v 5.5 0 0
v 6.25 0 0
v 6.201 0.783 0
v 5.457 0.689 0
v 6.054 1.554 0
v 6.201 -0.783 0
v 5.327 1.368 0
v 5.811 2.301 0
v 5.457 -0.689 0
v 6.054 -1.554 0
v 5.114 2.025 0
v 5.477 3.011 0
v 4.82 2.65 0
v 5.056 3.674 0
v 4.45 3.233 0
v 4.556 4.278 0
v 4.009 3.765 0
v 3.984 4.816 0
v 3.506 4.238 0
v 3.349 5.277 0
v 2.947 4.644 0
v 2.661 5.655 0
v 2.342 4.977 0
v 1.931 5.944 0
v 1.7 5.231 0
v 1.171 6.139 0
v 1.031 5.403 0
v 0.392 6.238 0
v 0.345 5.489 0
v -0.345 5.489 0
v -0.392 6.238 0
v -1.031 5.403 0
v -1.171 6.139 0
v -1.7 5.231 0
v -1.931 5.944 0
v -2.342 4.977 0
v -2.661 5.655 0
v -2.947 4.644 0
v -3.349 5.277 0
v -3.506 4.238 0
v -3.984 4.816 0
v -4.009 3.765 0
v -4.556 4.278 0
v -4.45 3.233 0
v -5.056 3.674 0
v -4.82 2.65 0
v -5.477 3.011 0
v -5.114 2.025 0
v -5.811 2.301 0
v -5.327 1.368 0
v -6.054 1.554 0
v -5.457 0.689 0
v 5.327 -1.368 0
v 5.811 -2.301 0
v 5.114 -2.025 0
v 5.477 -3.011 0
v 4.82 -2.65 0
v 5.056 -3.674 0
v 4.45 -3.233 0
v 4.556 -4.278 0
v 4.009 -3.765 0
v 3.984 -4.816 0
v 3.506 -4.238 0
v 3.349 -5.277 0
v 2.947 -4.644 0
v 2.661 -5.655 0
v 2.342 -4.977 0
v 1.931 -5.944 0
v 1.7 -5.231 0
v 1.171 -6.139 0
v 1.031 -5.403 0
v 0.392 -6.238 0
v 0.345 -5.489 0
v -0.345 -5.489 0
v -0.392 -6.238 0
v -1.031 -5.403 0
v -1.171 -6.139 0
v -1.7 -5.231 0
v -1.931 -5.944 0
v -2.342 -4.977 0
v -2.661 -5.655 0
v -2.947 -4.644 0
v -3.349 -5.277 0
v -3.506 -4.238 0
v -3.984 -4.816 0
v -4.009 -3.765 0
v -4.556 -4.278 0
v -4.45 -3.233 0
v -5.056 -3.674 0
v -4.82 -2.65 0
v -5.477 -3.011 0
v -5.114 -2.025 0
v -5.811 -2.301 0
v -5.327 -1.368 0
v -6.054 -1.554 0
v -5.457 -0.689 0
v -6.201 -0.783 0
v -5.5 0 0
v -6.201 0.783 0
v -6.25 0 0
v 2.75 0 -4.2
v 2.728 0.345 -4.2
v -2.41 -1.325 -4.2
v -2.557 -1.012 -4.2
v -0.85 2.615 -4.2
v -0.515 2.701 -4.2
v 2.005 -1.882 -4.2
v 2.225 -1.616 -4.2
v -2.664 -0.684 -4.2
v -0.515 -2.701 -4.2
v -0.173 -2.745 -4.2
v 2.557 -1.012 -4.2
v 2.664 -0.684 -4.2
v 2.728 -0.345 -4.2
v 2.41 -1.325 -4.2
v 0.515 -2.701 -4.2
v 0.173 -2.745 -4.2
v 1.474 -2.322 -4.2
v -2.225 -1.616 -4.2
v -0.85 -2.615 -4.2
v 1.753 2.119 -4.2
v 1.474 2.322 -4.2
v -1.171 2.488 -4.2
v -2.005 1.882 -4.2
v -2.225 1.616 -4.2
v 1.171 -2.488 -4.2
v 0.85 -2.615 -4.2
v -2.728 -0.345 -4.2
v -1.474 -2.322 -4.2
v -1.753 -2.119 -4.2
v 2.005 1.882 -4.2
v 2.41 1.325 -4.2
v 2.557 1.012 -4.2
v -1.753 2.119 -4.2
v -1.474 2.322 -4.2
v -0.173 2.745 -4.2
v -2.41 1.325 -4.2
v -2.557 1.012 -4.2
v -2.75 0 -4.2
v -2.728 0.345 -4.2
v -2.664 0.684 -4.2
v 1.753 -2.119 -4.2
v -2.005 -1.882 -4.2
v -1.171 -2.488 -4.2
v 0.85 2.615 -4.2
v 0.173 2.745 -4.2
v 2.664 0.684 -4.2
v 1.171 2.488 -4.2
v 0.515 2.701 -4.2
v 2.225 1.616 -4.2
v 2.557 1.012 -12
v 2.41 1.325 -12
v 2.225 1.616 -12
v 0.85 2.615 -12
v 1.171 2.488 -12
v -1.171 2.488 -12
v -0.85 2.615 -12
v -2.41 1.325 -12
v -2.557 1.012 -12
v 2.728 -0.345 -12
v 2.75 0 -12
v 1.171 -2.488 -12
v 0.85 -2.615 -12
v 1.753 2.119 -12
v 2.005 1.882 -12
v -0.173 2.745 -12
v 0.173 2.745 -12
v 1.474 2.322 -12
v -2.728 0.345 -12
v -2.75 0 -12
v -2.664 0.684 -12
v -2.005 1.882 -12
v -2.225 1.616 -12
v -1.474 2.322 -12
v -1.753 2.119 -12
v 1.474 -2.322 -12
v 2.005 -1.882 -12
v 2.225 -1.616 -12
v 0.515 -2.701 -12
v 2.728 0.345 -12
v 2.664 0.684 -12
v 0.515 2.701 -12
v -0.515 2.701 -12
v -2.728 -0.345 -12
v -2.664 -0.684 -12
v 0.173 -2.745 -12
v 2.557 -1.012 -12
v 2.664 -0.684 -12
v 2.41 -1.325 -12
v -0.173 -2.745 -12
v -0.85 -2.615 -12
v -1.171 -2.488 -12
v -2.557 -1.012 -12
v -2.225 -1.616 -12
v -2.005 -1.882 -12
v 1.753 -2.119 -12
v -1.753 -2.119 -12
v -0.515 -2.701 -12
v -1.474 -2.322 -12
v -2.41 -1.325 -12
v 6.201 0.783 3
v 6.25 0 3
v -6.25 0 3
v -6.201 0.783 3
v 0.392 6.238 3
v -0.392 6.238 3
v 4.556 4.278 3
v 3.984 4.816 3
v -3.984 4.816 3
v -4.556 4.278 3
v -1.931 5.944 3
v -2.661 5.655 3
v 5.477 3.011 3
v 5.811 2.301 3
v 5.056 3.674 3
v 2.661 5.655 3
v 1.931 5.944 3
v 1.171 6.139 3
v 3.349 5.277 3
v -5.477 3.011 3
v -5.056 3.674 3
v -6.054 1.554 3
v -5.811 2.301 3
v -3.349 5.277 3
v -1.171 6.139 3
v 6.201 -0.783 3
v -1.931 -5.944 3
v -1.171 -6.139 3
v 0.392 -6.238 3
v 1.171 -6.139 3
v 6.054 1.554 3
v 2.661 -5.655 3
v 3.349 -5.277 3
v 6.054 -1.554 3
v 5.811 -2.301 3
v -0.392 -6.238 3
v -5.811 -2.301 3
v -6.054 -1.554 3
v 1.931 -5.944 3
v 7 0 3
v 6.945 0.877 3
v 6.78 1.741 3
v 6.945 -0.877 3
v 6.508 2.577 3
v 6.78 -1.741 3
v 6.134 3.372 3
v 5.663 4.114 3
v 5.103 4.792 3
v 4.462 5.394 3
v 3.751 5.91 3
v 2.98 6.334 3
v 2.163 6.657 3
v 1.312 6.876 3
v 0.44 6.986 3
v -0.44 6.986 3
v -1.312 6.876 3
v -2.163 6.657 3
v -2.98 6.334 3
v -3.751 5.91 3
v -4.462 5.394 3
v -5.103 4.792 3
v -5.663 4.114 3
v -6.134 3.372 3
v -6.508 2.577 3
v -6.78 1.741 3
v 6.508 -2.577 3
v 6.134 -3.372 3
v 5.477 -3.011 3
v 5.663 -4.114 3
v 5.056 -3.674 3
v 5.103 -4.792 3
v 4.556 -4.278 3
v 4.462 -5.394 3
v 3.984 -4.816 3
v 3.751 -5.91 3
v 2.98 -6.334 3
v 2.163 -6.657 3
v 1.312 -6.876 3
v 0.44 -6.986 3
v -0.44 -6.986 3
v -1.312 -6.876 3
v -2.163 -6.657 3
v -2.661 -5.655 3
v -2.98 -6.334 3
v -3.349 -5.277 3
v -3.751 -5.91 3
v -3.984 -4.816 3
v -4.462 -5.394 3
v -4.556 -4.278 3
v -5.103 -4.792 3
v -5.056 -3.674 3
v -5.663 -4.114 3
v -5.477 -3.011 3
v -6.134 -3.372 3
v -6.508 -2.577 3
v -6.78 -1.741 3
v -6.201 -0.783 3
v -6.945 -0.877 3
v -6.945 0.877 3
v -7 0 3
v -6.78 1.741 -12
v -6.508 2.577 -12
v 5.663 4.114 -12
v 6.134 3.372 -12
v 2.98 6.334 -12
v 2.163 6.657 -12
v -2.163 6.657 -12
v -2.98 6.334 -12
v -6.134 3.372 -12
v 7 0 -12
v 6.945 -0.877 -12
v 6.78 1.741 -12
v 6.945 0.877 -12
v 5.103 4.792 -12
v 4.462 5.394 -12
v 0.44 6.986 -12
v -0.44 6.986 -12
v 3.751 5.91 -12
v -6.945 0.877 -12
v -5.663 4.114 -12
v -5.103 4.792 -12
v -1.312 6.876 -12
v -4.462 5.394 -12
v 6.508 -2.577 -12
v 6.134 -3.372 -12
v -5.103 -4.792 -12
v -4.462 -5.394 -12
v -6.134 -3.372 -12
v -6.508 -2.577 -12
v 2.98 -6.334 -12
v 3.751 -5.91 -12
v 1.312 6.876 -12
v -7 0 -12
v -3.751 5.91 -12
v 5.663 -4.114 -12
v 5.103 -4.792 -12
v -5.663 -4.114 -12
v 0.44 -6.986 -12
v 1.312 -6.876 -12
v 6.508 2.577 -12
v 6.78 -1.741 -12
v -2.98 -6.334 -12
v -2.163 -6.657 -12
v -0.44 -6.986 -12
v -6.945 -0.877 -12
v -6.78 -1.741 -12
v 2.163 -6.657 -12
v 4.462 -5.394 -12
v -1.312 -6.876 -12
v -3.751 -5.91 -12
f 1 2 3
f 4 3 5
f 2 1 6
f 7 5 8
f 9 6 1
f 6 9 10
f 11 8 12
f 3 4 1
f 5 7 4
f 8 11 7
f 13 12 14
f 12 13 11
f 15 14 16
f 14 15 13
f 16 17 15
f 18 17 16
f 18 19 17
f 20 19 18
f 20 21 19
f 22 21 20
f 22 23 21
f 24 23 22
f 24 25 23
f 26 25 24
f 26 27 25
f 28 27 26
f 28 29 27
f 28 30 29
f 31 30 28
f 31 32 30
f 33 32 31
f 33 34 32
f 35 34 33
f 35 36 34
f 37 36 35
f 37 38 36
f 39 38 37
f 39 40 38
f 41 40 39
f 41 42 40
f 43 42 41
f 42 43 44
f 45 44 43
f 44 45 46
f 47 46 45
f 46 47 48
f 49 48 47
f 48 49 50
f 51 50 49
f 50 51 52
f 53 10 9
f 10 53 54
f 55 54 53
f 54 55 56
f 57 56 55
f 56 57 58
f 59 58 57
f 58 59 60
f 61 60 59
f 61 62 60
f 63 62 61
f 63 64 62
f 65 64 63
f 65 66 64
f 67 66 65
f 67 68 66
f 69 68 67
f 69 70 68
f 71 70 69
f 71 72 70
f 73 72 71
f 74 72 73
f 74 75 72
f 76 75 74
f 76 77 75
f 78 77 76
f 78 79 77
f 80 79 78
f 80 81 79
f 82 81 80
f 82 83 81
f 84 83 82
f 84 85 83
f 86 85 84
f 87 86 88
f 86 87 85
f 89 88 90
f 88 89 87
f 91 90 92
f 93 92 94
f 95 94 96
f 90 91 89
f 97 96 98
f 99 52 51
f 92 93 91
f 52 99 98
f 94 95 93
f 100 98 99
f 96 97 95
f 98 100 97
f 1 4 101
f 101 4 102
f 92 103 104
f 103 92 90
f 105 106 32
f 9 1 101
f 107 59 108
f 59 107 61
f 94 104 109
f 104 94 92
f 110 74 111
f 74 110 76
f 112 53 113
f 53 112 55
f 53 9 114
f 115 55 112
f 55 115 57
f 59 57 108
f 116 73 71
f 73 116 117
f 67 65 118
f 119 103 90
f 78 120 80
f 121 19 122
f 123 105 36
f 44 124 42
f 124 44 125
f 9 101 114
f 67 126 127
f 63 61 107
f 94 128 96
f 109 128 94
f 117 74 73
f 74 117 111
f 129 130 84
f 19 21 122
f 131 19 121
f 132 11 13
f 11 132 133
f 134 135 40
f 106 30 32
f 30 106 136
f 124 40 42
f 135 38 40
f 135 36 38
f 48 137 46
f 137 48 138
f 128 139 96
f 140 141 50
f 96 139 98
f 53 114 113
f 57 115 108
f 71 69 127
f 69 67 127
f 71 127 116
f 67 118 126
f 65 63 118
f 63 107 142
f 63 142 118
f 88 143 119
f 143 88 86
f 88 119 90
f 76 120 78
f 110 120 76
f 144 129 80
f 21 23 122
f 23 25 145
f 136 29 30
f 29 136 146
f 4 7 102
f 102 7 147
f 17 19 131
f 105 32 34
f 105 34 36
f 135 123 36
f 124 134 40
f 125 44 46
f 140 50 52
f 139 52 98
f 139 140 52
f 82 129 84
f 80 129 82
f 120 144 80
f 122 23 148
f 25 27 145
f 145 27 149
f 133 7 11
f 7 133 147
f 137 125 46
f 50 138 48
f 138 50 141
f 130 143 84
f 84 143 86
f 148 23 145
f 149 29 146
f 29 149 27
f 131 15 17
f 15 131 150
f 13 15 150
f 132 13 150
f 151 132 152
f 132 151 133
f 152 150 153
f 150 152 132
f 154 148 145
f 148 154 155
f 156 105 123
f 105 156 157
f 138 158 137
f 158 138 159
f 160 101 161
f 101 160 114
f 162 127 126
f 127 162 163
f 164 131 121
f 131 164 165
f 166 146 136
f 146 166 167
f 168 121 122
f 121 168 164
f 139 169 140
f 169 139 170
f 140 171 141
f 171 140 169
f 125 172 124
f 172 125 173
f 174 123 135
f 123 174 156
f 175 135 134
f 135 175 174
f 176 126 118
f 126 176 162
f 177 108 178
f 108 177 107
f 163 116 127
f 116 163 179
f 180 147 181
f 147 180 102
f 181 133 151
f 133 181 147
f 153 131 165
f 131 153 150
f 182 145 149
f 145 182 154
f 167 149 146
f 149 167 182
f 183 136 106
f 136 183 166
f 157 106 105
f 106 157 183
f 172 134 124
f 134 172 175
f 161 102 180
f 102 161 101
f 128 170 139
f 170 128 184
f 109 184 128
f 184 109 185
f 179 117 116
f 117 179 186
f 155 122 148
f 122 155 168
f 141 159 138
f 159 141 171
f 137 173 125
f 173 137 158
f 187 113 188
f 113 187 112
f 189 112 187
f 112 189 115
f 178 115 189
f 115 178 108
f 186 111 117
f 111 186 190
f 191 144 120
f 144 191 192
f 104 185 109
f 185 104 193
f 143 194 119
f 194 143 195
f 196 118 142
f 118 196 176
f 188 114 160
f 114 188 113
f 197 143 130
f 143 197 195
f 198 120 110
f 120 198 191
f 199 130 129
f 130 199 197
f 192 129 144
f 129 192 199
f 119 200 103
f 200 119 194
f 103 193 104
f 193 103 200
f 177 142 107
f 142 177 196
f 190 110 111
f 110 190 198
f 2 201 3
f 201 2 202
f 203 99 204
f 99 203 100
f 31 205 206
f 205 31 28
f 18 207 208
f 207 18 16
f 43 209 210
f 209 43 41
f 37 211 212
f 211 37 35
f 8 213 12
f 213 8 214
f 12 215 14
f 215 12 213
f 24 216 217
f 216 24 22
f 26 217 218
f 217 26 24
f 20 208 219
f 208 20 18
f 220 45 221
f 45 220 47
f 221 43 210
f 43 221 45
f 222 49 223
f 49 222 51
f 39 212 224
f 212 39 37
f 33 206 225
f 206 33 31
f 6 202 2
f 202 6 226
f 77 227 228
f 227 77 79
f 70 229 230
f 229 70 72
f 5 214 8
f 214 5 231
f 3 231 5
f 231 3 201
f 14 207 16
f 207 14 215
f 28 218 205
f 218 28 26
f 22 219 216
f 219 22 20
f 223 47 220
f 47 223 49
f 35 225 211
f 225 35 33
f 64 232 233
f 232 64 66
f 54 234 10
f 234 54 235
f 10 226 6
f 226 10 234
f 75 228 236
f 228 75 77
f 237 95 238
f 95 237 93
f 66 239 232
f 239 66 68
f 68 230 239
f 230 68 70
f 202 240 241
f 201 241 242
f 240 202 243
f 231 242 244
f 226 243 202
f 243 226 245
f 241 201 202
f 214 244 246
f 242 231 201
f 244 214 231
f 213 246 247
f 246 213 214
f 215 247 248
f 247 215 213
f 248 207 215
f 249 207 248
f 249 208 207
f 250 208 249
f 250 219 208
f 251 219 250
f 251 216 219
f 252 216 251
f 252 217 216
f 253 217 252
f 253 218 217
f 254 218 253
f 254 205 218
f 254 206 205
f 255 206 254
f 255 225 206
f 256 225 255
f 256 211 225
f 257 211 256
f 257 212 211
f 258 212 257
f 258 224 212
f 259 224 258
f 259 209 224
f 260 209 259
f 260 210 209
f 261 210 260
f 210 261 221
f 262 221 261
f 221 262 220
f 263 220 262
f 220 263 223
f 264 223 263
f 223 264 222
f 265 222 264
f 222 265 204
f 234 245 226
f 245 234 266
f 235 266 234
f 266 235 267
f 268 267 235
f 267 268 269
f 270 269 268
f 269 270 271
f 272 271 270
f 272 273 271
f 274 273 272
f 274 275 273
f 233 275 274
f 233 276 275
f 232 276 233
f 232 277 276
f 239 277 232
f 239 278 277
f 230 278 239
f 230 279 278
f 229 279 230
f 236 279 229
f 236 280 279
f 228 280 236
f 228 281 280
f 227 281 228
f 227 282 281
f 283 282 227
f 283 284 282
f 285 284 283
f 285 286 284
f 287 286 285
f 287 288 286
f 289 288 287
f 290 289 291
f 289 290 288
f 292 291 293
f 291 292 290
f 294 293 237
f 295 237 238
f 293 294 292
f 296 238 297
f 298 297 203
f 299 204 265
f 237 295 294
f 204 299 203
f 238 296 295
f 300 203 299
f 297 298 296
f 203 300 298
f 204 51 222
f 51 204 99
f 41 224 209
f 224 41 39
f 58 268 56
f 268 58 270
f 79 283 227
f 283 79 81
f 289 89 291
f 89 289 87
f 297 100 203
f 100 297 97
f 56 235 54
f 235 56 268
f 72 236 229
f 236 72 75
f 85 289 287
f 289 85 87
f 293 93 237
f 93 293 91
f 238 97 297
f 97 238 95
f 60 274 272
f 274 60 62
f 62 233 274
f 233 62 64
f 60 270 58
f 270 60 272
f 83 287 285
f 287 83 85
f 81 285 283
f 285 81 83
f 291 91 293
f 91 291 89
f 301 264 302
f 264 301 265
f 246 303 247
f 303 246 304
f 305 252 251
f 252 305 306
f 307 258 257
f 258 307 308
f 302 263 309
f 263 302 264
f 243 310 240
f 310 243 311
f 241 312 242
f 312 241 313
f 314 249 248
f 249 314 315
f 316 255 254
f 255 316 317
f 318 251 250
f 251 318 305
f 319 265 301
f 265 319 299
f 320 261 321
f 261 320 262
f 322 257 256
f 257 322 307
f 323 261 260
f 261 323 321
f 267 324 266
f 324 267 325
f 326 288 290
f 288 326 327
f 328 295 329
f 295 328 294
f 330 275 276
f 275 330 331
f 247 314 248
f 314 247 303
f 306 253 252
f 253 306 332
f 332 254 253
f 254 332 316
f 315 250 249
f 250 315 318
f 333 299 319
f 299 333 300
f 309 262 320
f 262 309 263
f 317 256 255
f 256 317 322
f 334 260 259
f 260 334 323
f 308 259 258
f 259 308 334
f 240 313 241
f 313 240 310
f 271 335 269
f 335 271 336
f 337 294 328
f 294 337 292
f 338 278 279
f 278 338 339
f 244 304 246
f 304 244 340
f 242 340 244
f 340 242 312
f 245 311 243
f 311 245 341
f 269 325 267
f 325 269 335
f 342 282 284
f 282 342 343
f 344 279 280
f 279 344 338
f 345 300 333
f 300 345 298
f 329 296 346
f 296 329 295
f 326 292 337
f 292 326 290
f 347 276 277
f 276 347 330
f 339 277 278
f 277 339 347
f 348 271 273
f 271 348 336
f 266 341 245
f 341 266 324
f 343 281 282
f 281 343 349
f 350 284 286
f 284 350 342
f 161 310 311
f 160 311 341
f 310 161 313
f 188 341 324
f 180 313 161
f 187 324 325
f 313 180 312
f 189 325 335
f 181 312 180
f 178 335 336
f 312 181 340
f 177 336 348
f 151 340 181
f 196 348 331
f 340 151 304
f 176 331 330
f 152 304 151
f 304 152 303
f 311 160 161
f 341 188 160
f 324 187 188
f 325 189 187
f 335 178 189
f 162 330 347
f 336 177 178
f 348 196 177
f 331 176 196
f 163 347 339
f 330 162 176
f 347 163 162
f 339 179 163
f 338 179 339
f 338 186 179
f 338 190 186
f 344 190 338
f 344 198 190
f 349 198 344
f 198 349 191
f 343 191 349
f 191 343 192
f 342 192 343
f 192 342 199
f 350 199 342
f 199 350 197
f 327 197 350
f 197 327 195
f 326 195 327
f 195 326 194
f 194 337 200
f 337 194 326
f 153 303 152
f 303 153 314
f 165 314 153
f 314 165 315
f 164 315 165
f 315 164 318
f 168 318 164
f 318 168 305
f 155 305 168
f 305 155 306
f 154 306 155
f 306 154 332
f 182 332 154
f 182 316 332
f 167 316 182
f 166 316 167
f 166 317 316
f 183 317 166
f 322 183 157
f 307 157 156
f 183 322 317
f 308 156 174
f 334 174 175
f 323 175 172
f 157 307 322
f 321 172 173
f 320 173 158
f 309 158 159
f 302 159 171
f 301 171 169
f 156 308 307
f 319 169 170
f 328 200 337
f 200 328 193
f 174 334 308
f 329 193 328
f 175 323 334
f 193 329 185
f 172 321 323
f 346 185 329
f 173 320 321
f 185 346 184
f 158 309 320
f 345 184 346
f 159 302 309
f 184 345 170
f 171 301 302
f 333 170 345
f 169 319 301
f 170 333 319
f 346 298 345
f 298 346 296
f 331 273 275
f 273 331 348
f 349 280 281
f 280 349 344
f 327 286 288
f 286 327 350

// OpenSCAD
$fn = 50;

difference() {
	union() {
		translate(v = [0, 0, -12.0]) {
			cylinder(h = 15, r = 7.0);
		}
	}
	union() {
		translate(v = [0, 0, 0]) {
			rotate(a = [0, 0, 0]) {
				difference() {
					union() {
						translate(v = [0, 0, -15.0]) {
							cylinder(h = 15, r = 2.25);
						}
						translate(v = [0, 0, -4.2]) {
							cylinder(h = 4.2, r1 = 2.75, r2 = 5.5);
						}
						translate(v = [0, 0, -15.0]) {
							cylinder(h = 15, r = 2.75);
						}
						translate(v = [0, 0, -15.0]) {
							cylinder(h = 15, r = 2.25);
						}
					}
					union();
				}
			}
		}
		#cylinder(h = 3, r = 6.25);
	}
}
